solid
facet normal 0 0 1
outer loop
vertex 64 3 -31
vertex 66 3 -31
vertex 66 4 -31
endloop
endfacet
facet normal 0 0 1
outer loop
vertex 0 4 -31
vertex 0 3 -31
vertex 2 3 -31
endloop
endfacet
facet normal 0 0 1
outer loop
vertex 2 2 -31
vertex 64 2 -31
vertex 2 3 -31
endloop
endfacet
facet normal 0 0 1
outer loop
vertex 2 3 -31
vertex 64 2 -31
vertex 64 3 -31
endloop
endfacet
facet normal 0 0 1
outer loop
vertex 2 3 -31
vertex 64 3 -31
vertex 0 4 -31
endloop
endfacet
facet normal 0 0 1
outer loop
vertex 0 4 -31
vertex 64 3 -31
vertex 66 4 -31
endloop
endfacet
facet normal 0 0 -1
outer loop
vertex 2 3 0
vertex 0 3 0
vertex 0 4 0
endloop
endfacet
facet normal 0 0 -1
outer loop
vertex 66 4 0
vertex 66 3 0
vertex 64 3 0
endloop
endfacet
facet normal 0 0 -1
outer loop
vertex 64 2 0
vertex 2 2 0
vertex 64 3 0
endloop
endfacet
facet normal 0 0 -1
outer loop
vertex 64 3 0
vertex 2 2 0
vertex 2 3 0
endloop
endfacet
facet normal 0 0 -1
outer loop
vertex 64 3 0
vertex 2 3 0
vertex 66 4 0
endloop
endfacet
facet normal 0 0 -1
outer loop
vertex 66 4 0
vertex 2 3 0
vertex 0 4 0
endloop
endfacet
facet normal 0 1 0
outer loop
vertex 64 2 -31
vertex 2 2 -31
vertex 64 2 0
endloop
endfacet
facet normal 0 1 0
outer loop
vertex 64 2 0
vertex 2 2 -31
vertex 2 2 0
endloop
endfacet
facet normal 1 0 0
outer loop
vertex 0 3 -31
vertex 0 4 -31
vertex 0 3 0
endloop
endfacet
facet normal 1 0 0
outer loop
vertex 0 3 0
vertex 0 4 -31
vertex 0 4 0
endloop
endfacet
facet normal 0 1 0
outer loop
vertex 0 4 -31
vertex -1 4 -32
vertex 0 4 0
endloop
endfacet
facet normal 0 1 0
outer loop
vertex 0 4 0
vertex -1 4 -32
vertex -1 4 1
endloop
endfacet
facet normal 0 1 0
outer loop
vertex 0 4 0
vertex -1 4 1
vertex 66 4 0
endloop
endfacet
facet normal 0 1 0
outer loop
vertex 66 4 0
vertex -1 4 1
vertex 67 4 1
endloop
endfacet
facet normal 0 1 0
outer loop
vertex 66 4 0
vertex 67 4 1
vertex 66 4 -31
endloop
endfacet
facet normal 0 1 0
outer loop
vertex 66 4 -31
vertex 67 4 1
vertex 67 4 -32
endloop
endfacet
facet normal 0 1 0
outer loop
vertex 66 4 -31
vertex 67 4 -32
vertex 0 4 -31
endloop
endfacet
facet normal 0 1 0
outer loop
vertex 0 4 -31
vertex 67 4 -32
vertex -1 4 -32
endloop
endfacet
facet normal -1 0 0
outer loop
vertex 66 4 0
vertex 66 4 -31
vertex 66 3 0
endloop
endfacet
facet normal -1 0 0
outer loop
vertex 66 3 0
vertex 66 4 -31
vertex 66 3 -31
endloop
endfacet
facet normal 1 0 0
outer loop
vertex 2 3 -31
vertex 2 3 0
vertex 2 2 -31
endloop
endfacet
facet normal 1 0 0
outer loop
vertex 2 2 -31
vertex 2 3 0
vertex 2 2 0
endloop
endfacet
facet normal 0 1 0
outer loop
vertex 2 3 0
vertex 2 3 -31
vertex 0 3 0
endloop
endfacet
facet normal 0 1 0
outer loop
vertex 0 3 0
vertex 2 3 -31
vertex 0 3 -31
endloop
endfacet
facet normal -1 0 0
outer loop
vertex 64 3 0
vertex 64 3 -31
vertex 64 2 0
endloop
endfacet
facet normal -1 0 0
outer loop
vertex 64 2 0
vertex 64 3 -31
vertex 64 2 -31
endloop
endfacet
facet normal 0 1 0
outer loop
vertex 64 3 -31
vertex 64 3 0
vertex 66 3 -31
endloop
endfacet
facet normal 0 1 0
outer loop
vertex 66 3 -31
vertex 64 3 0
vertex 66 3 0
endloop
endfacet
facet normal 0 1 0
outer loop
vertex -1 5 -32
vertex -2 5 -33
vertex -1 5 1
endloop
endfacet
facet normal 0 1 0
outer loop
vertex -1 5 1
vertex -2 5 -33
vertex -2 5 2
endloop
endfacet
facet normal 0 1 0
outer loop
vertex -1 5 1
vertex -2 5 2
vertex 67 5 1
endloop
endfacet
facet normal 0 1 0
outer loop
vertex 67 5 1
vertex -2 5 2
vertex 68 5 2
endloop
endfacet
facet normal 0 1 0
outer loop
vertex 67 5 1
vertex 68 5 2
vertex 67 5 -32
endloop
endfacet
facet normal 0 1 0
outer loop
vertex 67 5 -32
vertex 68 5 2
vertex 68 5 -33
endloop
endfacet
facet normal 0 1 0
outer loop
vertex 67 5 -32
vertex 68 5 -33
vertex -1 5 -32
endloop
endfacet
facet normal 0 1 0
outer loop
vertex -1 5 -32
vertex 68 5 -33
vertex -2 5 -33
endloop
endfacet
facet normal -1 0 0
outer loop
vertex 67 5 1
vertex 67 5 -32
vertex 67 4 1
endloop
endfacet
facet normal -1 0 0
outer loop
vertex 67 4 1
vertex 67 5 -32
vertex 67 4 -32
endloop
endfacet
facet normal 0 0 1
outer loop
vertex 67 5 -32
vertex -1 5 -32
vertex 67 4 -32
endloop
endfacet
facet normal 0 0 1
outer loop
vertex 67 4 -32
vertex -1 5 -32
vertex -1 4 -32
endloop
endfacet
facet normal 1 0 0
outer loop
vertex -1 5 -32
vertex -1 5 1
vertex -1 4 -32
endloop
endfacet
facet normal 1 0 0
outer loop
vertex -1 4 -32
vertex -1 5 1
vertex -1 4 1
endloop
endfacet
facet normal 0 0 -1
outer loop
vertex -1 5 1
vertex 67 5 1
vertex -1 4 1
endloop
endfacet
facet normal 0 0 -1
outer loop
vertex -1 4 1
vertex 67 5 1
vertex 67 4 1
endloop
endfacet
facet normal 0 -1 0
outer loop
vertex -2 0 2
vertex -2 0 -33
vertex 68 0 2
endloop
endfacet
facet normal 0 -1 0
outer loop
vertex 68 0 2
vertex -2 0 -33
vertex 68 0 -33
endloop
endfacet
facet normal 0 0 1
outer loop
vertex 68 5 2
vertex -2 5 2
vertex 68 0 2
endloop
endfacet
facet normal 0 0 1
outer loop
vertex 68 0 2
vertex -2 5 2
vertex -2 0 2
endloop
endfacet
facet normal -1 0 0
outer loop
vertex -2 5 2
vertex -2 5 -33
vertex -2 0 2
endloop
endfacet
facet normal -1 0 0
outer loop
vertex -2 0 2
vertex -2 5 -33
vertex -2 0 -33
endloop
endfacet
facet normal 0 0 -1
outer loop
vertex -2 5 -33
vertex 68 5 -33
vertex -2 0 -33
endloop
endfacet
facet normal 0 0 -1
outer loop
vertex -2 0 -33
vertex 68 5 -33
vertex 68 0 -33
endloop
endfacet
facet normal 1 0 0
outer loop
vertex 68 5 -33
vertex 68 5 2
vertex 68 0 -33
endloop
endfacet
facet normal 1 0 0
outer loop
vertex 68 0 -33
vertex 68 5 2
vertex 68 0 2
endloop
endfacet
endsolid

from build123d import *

# Parameters (mm, degrees)
SKETCH1_W           = 70
SKETCH1_H           = 35
BOSS_EXTRUDE1_DEPTH = 2
SKETCH2_W           = 70
SKETCH2_H           = 35
SKETCH2_W_2         = 66
SKETCH2_H_2         = 31
BOSS_EXTRUDE2_DEPTH = 2
SKETCH3_W           = 2
SKETCH3_H           = 31
BOSS_EXTRUDE3_DEPTH = 1
SKETCH4_W           = 70
SKETCH4_H           = 35
SKETCH4_W_2         = 68
SKETCH4_H_2         = 33
BOSS_EXTRUDE4_DEPTH = 1


with BuildPart() as part:
    # Sketch1 → Boss-Extrude1 (new body)
    with BuildSketch(Plane(origin=(0, 0, 0), x_dir=(1, 0, 0), z_dir=(0, 1, 0))):
        with Locations((33, 15.5)):
            Rectangle(SKETCH1_W, SKETCH1_H)
    extrude(amount=BOSS_EXTRUDE1_DEPTH)

    # Sketch2 → Boss-Extrude2 (add)
    with BuildSketch(Plane(origin=(0, 2, 0), x_dir=(1, 0, 0), z_dir=(0, 1, 0))):
        with Locations((33, 15.5)):
            Rectangle(SKETCH2_W, SKETCH2_H)
        with Locations((33, 15.5)):
            Rectangle(SKETCH2_W_2, SKETCH2_H_2, mode=Mode.SUBTRACT)
    extrude(amount=BOSS_EXTRUDE2_DEPTH)

    # Sketch3 → Boss-Extrude3 (add)
    with BuildSketch(Plane(origin=(0, 2, 0), x_dir=(1, 0, 0), z_dir=(0, 1, 0))):
        with Locations((1, 15.5)):
            Rectangle(SKETCH3_W, SKETCH3_H)
        with Locations((65, 15.5)):
            Rectangle(SKETCH3_W, SKETCH3_H)
    extrude(amount=BOSS_EXTRUDE3_DEPTH)

    # Sketch4 → Boss-Extrude4 (add)
    with BuildSketch(Plane(origin=(0, 4, 0), x_dir=(1, 0, 0), z_dir=(0, 1, 0))):
        with Locations((33, 15.5)):
            Rectangle(SKETCH4_W, SKETCH4_H)
        with Locations((33, 15.5)):
            Rectangle(SKETCH4_W_2, SKETCH4_H_2, mode=Mode.SUBTRACT)
    extrude(amount=BOSS_EXTRUDE4_DEPTH)


solid = part.part
